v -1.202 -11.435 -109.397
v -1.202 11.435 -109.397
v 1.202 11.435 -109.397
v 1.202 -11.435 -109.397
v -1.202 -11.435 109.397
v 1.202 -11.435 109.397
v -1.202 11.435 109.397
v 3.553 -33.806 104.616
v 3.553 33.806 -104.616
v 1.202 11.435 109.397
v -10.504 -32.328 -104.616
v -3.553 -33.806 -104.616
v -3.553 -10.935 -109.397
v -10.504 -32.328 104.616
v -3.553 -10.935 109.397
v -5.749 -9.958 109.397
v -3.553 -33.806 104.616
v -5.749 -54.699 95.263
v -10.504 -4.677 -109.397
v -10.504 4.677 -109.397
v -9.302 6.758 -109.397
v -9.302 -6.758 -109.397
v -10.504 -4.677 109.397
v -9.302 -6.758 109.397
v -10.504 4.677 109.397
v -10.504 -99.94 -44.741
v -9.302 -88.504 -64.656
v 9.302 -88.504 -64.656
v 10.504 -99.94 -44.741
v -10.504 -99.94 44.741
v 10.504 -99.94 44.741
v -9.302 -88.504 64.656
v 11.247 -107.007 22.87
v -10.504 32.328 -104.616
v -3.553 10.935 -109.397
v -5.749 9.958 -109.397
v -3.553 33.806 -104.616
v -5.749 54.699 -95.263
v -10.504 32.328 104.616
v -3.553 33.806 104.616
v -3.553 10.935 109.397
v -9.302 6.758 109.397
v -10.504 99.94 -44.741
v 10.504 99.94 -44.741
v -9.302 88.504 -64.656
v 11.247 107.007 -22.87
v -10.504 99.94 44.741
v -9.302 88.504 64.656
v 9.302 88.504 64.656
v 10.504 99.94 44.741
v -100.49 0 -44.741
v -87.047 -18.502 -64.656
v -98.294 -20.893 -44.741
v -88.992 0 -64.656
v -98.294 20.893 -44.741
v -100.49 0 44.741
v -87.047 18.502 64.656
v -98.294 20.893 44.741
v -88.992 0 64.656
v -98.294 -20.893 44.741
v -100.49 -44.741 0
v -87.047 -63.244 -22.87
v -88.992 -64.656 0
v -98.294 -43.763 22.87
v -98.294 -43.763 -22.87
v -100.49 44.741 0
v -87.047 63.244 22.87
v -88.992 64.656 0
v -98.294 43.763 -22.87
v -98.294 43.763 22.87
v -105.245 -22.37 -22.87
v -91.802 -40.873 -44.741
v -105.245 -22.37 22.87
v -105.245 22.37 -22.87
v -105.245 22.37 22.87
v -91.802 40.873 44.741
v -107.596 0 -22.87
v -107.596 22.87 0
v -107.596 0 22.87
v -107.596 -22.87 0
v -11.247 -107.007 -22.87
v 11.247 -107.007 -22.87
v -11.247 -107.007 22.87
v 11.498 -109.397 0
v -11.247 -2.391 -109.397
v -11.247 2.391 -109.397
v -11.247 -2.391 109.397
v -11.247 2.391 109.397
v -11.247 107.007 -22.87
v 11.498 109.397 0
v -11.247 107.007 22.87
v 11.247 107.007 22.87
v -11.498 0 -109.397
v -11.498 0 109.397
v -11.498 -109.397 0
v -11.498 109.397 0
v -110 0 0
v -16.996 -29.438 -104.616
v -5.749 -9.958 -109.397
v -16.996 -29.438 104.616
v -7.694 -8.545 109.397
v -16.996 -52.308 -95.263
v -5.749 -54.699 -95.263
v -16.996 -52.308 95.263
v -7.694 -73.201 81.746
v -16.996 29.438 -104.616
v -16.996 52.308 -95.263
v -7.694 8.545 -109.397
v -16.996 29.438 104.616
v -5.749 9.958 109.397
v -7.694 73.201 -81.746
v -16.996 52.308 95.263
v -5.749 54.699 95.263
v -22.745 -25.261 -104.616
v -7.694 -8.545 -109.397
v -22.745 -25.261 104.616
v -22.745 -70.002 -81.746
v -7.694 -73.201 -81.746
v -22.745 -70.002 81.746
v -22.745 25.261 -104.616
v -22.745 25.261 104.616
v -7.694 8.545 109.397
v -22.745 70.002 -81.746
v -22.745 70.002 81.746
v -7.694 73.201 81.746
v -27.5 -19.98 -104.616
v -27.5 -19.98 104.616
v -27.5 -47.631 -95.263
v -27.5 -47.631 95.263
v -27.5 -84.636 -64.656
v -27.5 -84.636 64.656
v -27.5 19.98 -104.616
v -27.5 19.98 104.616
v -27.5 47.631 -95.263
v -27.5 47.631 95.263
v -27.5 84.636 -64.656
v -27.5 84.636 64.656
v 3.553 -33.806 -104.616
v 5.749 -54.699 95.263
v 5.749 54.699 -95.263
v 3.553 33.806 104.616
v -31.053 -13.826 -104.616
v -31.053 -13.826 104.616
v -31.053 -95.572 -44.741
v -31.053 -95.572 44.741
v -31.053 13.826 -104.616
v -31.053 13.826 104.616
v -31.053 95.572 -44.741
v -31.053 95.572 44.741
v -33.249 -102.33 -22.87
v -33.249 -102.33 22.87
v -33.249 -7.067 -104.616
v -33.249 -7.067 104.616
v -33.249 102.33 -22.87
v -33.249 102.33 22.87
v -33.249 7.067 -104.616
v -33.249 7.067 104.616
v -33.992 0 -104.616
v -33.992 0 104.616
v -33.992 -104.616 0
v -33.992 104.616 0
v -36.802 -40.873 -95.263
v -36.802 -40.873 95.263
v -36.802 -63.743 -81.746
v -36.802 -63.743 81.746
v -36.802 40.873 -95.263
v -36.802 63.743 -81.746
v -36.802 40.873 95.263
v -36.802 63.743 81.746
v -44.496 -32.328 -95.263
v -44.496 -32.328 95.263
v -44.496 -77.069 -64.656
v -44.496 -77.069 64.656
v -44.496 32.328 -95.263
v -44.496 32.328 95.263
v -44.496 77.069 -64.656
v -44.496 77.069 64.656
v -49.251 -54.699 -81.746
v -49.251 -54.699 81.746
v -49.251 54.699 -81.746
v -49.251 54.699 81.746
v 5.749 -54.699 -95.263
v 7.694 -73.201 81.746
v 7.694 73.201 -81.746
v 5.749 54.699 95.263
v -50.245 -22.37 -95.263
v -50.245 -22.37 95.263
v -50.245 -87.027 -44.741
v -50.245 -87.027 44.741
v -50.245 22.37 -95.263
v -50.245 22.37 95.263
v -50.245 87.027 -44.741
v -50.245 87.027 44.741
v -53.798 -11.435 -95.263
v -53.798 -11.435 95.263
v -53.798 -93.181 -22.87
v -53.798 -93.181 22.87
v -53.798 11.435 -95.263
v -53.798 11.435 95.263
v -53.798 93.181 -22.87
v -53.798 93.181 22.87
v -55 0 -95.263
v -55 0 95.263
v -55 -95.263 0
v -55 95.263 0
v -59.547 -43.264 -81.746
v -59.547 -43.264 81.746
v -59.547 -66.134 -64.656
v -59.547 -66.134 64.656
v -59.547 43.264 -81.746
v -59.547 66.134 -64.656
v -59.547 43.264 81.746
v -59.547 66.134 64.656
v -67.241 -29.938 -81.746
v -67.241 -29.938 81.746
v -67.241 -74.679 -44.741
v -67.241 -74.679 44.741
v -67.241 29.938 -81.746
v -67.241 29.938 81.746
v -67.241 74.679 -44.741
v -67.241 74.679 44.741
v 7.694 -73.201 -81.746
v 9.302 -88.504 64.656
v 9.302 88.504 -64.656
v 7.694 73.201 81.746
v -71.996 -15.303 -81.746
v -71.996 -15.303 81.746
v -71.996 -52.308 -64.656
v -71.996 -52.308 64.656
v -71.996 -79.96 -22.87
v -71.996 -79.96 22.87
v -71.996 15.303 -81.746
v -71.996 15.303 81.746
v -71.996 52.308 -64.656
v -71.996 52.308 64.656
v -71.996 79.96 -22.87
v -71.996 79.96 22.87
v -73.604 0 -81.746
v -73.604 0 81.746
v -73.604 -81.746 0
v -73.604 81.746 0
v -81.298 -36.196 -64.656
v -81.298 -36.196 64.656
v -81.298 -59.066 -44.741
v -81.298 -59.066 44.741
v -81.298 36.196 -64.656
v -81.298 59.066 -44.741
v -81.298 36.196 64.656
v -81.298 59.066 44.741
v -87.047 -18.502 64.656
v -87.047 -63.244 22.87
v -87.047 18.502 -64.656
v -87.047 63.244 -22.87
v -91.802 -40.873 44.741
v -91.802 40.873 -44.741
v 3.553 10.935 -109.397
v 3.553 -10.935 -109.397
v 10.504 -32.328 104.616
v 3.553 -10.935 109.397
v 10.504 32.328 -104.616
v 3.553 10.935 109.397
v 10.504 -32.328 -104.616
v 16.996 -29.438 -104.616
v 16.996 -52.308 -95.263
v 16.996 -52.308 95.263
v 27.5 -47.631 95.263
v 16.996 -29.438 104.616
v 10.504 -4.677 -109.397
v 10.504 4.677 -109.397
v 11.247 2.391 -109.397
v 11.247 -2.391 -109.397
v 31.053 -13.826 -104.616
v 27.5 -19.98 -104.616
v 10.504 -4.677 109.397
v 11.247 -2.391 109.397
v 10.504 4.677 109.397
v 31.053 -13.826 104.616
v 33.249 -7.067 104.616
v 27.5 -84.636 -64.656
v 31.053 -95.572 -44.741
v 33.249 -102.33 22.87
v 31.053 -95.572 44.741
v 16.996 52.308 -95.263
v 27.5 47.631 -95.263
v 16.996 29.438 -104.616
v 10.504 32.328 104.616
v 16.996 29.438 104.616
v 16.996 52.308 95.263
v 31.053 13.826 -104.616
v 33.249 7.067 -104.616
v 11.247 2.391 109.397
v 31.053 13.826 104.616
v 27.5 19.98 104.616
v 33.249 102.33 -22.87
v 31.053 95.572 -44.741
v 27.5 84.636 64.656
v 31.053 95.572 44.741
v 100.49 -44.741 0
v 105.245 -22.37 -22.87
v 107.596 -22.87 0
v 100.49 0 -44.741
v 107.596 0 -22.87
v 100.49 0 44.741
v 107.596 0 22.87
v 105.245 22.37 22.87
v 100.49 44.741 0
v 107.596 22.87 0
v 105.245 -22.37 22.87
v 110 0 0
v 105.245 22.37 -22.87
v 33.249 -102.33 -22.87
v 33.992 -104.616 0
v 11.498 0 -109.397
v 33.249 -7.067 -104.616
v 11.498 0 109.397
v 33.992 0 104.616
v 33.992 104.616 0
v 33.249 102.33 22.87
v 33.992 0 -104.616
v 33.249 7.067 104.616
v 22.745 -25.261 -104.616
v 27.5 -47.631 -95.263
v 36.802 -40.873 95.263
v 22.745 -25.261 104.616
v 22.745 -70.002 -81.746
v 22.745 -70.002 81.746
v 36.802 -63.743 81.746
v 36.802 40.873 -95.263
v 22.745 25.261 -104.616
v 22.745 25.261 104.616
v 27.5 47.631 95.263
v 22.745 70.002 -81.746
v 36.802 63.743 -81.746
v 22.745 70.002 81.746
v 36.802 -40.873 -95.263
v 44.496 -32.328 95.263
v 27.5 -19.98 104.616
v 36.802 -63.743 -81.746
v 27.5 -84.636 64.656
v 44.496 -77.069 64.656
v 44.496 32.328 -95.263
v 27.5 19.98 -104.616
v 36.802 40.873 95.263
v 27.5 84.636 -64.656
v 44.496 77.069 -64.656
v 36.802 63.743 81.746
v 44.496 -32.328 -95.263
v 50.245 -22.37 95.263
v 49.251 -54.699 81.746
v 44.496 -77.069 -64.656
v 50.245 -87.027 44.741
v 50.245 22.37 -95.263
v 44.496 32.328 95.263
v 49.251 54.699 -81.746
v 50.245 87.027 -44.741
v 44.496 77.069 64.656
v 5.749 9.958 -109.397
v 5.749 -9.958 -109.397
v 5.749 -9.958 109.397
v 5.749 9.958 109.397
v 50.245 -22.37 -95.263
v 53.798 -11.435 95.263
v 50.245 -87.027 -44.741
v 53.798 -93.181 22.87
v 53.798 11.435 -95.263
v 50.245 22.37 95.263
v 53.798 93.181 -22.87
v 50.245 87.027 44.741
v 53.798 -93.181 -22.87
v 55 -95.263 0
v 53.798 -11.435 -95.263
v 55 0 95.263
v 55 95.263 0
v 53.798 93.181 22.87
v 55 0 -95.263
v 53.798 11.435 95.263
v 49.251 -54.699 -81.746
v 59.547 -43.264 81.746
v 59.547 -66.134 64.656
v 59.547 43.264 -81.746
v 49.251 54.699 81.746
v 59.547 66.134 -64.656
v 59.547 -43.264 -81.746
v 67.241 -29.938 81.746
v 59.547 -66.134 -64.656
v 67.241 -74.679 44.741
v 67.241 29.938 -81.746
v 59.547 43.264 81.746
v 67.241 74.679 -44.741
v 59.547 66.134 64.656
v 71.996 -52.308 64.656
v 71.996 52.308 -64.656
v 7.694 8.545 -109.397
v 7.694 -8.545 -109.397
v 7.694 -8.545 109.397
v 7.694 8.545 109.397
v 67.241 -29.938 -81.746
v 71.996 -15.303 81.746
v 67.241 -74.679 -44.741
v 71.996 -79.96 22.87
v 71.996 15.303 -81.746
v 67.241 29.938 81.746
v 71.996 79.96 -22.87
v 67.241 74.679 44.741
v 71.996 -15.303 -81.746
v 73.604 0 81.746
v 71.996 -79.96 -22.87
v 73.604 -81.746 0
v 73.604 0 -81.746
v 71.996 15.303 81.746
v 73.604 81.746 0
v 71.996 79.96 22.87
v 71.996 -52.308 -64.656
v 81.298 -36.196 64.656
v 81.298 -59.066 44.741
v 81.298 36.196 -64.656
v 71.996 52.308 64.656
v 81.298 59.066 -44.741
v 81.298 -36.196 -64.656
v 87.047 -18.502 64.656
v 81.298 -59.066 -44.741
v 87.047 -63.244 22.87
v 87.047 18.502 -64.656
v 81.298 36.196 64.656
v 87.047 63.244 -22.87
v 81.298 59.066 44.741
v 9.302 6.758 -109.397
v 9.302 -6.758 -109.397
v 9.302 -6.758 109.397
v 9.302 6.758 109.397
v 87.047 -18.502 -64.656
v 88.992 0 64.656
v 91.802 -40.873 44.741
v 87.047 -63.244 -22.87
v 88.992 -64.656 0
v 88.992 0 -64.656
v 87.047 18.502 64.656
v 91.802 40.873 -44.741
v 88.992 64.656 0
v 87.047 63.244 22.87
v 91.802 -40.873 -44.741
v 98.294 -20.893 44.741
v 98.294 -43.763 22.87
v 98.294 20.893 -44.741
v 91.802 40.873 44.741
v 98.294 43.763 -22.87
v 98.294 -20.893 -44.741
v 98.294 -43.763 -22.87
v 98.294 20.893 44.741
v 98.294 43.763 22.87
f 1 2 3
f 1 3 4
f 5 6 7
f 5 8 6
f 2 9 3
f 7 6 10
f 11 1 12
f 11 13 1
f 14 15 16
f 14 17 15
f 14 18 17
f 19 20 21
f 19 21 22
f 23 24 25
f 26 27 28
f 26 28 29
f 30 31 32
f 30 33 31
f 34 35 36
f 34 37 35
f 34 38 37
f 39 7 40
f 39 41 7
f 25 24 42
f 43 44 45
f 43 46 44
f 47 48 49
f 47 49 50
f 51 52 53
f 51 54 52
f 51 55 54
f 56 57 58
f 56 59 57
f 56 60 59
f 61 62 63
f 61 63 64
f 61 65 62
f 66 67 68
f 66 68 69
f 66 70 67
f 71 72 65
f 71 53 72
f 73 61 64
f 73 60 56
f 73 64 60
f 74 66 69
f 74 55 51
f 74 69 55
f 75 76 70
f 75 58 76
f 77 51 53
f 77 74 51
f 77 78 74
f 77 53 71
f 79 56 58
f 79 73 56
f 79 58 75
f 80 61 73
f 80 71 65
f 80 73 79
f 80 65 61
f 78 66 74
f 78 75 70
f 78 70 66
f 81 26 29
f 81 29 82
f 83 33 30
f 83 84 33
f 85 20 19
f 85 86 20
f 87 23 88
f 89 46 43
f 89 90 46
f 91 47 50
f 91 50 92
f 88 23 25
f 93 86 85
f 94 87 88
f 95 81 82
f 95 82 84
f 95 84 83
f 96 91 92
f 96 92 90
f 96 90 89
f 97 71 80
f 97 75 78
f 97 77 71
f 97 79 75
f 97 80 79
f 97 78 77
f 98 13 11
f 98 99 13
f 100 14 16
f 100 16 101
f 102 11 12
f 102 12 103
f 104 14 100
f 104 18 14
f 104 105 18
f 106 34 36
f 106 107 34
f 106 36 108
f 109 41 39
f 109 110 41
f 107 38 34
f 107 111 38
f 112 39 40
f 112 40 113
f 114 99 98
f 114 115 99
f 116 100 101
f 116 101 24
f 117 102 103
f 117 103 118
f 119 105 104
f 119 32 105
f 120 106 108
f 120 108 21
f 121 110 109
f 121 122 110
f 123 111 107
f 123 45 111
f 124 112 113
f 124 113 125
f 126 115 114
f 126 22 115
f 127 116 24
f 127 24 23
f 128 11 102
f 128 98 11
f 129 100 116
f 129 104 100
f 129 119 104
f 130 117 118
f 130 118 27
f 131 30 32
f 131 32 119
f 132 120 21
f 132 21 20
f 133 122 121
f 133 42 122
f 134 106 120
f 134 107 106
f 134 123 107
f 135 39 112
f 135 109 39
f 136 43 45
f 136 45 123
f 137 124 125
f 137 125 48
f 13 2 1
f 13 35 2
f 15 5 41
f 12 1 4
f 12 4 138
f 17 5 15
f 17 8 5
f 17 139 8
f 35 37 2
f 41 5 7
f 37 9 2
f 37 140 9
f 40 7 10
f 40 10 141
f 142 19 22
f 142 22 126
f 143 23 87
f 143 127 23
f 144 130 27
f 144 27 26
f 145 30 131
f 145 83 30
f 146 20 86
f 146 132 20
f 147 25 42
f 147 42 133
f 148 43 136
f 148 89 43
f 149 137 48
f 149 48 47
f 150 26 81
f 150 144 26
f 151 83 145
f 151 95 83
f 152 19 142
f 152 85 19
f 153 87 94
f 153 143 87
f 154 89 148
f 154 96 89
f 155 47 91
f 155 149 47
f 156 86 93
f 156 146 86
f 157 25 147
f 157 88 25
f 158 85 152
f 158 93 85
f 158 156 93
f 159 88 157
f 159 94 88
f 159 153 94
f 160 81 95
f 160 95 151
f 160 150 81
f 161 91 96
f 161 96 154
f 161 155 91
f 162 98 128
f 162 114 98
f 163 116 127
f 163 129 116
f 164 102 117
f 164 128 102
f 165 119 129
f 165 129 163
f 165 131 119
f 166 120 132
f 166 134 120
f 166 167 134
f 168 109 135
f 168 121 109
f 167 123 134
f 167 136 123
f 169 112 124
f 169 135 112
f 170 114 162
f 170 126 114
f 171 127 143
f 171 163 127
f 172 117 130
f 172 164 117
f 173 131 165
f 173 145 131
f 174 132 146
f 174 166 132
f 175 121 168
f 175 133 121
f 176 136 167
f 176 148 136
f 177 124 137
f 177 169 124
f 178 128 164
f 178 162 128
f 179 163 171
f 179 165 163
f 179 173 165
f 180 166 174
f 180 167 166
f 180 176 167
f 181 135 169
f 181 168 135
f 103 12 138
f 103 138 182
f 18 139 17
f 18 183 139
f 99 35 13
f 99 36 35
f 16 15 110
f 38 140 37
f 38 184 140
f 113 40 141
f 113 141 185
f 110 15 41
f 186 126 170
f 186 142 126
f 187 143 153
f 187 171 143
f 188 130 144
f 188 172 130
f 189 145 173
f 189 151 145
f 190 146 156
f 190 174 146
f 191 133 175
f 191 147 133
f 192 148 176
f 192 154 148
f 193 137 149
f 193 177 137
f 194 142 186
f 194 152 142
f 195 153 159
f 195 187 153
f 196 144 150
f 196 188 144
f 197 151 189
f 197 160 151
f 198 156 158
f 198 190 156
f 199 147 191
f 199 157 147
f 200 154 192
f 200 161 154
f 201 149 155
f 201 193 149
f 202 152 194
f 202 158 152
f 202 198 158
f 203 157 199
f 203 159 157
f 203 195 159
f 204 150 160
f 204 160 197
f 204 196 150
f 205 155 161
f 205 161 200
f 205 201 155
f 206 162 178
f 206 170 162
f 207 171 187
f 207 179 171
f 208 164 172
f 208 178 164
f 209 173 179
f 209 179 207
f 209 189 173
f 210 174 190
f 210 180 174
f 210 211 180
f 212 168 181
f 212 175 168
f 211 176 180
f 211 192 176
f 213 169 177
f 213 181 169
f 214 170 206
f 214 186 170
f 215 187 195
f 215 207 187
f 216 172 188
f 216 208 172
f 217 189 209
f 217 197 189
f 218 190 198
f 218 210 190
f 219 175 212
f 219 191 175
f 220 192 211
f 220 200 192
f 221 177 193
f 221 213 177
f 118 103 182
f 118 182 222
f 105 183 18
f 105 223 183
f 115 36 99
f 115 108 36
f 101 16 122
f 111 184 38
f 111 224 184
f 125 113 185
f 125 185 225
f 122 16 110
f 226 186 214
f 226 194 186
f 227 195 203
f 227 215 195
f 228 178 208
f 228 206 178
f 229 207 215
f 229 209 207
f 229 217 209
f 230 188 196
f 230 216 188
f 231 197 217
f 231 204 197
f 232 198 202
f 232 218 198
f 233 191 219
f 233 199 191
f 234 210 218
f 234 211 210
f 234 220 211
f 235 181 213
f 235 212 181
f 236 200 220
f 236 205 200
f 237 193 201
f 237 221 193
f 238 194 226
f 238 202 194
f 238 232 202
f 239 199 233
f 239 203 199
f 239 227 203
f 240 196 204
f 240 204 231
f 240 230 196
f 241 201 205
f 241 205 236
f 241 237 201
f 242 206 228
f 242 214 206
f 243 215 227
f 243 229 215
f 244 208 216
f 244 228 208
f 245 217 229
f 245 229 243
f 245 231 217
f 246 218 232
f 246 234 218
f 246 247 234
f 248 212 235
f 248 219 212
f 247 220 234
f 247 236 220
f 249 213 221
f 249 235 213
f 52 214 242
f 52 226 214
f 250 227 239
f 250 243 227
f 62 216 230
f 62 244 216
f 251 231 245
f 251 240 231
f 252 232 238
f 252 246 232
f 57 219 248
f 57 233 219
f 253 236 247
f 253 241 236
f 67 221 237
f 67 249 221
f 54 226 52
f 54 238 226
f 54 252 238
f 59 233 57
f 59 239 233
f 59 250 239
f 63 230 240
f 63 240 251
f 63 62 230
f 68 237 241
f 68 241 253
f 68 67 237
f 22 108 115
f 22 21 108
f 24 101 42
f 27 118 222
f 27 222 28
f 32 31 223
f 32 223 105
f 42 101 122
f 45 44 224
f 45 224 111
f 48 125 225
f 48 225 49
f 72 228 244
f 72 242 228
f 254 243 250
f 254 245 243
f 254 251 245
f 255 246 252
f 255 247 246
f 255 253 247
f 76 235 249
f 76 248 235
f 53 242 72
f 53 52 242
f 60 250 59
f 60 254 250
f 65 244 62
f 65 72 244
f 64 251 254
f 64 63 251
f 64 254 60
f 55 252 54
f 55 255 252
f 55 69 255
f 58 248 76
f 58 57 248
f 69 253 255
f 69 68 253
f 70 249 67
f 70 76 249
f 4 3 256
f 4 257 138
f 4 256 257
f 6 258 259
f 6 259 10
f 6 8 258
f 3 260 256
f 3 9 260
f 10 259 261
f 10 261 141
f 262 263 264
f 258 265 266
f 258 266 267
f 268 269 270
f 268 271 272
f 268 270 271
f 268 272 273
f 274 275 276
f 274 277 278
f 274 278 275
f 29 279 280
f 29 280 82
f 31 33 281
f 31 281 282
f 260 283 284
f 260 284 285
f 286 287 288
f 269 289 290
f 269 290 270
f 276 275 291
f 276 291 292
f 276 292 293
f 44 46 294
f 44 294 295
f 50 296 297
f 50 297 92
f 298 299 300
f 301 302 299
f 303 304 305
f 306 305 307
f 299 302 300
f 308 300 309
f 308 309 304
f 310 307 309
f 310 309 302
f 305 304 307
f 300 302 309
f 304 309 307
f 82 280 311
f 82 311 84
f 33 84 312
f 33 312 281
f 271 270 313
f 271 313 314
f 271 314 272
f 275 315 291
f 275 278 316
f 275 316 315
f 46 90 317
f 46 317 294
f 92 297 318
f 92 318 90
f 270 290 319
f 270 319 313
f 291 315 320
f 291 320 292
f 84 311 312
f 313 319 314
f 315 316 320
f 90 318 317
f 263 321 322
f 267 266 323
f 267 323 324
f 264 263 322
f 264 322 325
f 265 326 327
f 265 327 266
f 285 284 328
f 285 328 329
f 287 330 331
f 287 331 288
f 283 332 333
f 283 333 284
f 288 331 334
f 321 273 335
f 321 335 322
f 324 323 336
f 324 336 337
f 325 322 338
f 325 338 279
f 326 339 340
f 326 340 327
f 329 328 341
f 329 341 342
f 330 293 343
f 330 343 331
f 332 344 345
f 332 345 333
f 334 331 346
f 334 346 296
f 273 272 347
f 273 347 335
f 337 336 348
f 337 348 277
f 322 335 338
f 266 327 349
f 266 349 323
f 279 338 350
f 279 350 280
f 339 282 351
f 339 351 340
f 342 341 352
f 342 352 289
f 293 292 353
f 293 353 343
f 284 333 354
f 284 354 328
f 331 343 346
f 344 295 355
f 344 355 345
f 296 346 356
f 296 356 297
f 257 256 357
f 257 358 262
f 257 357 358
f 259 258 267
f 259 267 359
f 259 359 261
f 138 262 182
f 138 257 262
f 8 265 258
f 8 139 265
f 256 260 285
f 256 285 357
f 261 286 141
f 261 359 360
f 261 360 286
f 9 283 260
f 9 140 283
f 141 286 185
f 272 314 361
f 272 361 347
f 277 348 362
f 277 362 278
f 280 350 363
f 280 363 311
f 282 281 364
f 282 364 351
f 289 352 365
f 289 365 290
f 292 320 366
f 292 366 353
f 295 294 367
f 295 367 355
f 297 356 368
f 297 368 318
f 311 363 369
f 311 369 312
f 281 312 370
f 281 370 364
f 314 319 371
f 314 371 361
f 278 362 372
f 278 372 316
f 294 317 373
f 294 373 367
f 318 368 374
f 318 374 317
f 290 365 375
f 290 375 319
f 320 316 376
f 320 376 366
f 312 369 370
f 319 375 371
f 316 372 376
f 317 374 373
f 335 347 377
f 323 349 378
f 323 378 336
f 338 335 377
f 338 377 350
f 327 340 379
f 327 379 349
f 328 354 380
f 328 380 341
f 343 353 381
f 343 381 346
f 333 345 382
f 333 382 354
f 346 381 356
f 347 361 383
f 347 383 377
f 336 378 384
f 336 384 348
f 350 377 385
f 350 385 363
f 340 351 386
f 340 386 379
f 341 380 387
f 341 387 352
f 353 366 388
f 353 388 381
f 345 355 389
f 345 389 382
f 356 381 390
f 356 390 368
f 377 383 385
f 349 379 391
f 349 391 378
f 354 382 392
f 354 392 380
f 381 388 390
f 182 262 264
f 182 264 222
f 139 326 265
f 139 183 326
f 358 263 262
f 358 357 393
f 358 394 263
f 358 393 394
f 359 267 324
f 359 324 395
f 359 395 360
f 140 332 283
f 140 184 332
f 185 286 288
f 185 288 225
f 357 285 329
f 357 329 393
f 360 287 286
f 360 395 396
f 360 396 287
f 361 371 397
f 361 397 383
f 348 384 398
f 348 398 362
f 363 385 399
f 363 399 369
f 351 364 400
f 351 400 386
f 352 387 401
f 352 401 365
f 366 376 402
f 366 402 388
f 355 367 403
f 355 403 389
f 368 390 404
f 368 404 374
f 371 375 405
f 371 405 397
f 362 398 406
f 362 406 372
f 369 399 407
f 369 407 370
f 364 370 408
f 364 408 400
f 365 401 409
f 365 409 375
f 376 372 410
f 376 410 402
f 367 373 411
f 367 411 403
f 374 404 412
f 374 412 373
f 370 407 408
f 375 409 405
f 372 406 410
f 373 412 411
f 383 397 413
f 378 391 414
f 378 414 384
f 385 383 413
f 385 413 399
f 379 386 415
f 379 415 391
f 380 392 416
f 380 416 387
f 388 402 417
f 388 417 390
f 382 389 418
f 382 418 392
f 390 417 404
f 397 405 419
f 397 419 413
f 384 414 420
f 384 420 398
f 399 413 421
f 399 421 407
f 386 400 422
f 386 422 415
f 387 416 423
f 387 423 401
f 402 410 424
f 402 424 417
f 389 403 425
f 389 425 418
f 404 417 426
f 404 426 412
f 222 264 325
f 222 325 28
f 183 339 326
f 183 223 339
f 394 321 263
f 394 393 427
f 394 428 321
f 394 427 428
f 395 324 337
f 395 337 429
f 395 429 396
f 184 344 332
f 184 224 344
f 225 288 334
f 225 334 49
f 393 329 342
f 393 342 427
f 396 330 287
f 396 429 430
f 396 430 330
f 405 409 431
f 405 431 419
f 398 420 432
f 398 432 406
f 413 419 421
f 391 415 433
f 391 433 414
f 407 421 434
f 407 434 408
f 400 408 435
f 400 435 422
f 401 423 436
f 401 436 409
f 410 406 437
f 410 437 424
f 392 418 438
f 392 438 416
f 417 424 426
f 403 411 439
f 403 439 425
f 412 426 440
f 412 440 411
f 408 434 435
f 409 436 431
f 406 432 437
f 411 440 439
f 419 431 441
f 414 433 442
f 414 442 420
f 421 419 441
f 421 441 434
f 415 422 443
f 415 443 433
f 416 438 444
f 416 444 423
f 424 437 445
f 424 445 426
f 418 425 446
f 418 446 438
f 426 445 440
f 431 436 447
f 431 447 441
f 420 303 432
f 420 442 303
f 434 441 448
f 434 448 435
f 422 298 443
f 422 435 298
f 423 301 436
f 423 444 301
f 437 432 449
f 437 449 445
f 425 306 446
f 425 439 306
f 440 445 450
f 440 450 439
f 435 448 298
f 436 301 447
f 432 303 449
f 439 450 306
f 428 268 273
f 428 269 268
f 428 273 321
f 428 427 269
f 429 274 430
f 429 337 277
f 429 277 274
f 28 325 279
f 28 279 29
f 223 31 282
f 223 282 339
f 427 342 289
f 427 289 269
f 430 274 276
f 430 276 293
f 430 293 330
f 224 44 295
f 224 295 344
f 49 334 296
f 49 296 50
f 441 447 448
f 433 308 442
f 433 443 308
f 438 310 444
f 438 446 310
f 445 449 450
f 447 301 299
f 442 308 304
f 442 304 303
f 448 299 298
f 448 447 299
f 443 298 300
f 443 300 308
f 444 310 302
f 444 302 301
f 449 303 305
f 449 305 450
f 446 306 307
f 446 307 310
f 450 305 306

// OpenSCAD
// file: ../Parameters.scad
//Main tube diameter - hole [mm]
main_tube_outer_diameter = 25.4;
main_tube_inner_diameter = 23.5;

//Tube for undercarriage - hole [mm]
tube_for_undercarriage_outer_diameter = 10.6;
tube_for_undercarriage_inner_diameter = 6;
global_clearance = 0.5;



// Parameters of tube couplings
coupling_wall_thickness = main_tube_outer_diameter/5;  //width of coupling walls 
thickness_between_tubes = main_tube_outer_diameter/10;    // minimum distance between tubes in couplings

coupling_wall_thickness_undercarriage = tube_for_undercarriage_outer_diameter/3;
thickness_between_tubes_undercarriage = tube_for_undercarriage_outer_diameter/10;

// screw lenght step - minimum difference in lenght between two types of screws
basic_screw_length = 5;


//Screw diameter and nut for M6 [mm]
M6_screw_diameter=6.5;
Nut_height_M6 = 4.9;
Nut_diameter_M6 = 11.8;


//Screw diameter and nut for M4 [mm]
M4_screw_diameter=4.5;
Nut_height_M4 = 3.2;
Nut_diameter_M4 = 8.4;
Screw_head_height_M4 = 4;

//Screw diameter and nut for M3 [mm]
M3_screw_diameter = 3.2;
Nut_height_M3 = 2.7;	
Nut_diameter_M3 = 6.6; 
Screw_head_height_M3 = 3;


//šroub servo
Servo_screw = 1.5;

//The tube for help
Help_main_tube_outer = 25;
Help_main_tube_inner = 23; 
Help_tube_for_undercarriage_outer = 10;
Help_tube_for_undercarriage_inner = 5;


//main hull parameters

hull_drop_length = 580;
hull_wall_thickness = 0.8;
hull_y_size = 120;
hull_z_size = 150;
hull_x_size = 580;
hull_corner_radius = 4;
hull_airfoil_thickness= 35;  // thickness of drop generating airfoil in percent of lenght.
hull_scale_x = 1;
hull_scale_y = 1.5;
hull_scale_z = 1.5;

main_pilon_position = 170+68;       // pozice rotorového pilonu měřená od přední části krytu
cover_pilon_position = 180;
height_of_vertical_tube = 275; //278mm je změřená délka trubky. 

//délka hlavní dlouhé trubky
length_of_main_tube = 920;
length_of_undercarriage_tube = 300;

ribbon_width = 5; // šířka vyztužovacích lemů. 

// šířka otvoru v přední části kapoty pro držák motoru.
width_of_engine_holder = 63;

//Top Cover Division - dělení horního krytu pro tisk
top_cover_division = [0, 50, 150, 280, 410, hull_x_size]; // upraveny seznam tak, aby deleni začinalo od nuly, což umožňí úplně automatické rozdělení.

//Bottom Cover Division - dělení dolního krytu pro tisk
bottom_cover_division = [0,100,232.5,365, 470, hull_x_size];
// zkrácená část pro payload pro testovací tisk
//bottom_cover_division = [0,200,250,365, 470, hull_x_size];





//Cover pilon division - na výšku (v ose Z)
cover_pilon_division = [0,170,height_of_vertical_tube + main_tube_outer_diameter + coupling_wall_thickness];

//pozice šroubů
	//horní kryt
top_screw_position = [0,
                    (top_cover_division[0] + top_cover_division[1])/2,
                    (top_cover_division[2] - top_cover_division[1])/2 + top_cover_division[1],
                    (top_cover_division[3] - top_cover_division[2])/2 + top_cover_division[2],
                    (top_cover_division[4] - top_cover_division[3])/8 + top_cover_division[3],
                    (top_cover_division[5] - top_cover_division[4])/2 + top_cover_division[4] - top_cover_division[1]/3];
	//spodní kryt
bottom_screw_position = [0,
                        (bottom_cover_division[0] + bottom_cover_division[1])*(2/6), 
                        bottom_cover_division[1]*(9/10), 
                        bottom_cover_division[3] + bottom_cover_division[1]*(1/10), 
                        bottom_cover_division[3] + bottom_cover_division[1]*(3/5)];




//šířka zámků
lock_width = 10;

//délka zámků
lock_length = 3;


//accumulator
//základní rozměry akumulátoru
width_of_accumulator = 129.4;//45+1;
depth_of_accumulator = 40.61;
height_of_accumulator = 43.65;
//Zapuštění akumulátoru
sink_of_accumulator = 5; //main_tube_outer_diameter/5 - Nut_height_M3*1.5;

//tloušťka hrany spojky
accumulator_holder_width = 18; 
accumulator_holder_thickness = 10; 

//posunutí akumálátoru na podložce
move_of_accumulator = 75;   // pozice akumulátoru (ovlivňuje těžiště)


////////////////
// Senzory
///////////////////

//opticalFlow
width_optical_flow_senzor = 45.5;
depth_optical_flow_senzor = 6;
height_optical_flow_senzor = 35;
sink_of_optical_flow_senzor = depth_optical_flow_senzor - 5; 
M3_optical_flow_senzor_Z = 30.4;
M3_optical_flow_senzor_X = 24;
M3_optical_flow_senzor_Z_alone = 9.1;
M3_optical_flow_senzor_X_alone = 16.7;

//GPS anténa
GPS_outer_length = 48.01;   //Vnější rozměr
GPS_inner_length = 37.48;   //Vnitřní rozměr
GPS_diameter = (GPS_outer_length - GPS_inner_length)/2;    //Průměr otvoru
GPS_middle_length = GPS_diameter + GPS_inner_length;      //Střední rozměr


////podzvozek

radius_undercarriage = 25;
vzdalenost_x = tan(20) * 131;
vzdalenost_y = (131 - radius_undercarriage)/tan(79);
uhel_y = 90 - 20;
uhel_x = 90 - 79;

maximum_printable_size = 150;


////Pitotova trubice
Pitot_tube_diameter = 4.02 + 1;
Distance_hole_from_tube = 11.92;  //vzdálenost otvoru pro připevnění od samotné trubičky


////směrové kormidlo
Rudder_length = 4*main_tube_outer_diameter;
Rudder_height = 2*main_tube_outer_diameter;
Rudder_depth = main_tube_outer_diameter/2;
gap_width = 2*hull_wall_thickness;      //šířka mezery mezi směrovkou a ocasní plochou


/////spojka 666_1004

    width_666_1004 = (main_tube_outer_diameter+2*coupling_wall_thickness - Screw_head_height_M3)/basic_screw_length;
        echo("width_666_1004 is", width_666_1004);
    
        echo("ceil_666_1004 is", ceil(width_666_1004));

    coupling_screw_length_666_1004 = (ceil(width_666_1004)) * basic_screw_length;
        echo("coupling_screw_length_666_1004 is", coupling_screw_length_666_1004);

    coupling_width_666_1004 = coupling_screw_length_666_1004 + Screw_head_height_M3;
        echo("coupling_width_666_1004 is", coupling_width_666_1004);

    height_666_1004 = coupling_width_666_1004;
        echo("height_666_1004 is", height_666_1004);

/////spojka 666_1026

    width_666_1026 = main_tube_outer_diameter + 2*thickness_between_tubes;
    
    depth_666_1026 = (main_tube_outer_diameter*2)/basic_screw_length;
        echo("depth_666_1026 is", depth_666_1026);
    
        echo("ceil_666_1026 is", ceil(depth_666_1026));

    coupling_screw_length_666_1026 = (ceil(depth_666_1026)) * basic_screw_length;
        echo("coupling_screw_length_666_1026 is", coupling_screw_length_666_1026);

        coupling_depth_666_1026 = coupling_screw_length_666_1026 - Screw_head_height_M4;      //zde je odečten screw_head_height_M4 pro určení šířky, tak aby šroub přesahoval pro potřebnou matku
            echo("coupling_depth_666_1026 is", coupling_depth_666_1026);

    height_666_1026 = coupling_depth_666_1026;
        echo("height_666_1026 is", height_666_1026);

////spojka 666_1017

    width_666_1017 = (main_tube_outer_diameter+2*coupling_wall_thickness - Screw_head_height_M3)/basic_screw_length;
        echo("width_666_1017 is", width_666_1017);
    
        echo("ceil_666_1017 is", ceil(width_666_1017));

    coupling_screw_length_666_1017 = (ceil(width_666_1017)) * basic_screw_length;
        echo("coupling_screw_length_666_1017 is", coupling_screw_length_666_1017);

    coupling_width_666_1017 = coupling_screw_length_666_1017 + Screw_head_height_M3;
        echo("coupling_width_666_1017 is", coupling_width_666_1017);

    depth_666_1017 = coupling_width_666_1017;

    height_666_1017= 70; //main_tube_outer_diameter*1.8+main_tube_outer_diameter+wall_thickness;






//umístění podvozkových trubek

second_undercarriage_hole = main_tube_outer_diameter*2 + coupling_width_666_1004 + 170 + 160;


//Base Divison - dělení podložky
base_division = [0, 140, main_pilon_position - (3*main_tube_outer_diameter)/2 + 3 * main_tube_outer_diameter, second_undercarriage_hole - coupling_width_666_1004/2, hull_x_size];

// šrouby pro připevnění podložky k hlavní trubce
base_mounting_screw_length = 50;
// main file
module starting_wedge(){

width = 40;
	//difference(){
        translate([-width/2, 0, 0])
            %cube([width,120,90]);
        sphere(110);
	//}
}

starting_wedge();

include <../Parameters.scad>
